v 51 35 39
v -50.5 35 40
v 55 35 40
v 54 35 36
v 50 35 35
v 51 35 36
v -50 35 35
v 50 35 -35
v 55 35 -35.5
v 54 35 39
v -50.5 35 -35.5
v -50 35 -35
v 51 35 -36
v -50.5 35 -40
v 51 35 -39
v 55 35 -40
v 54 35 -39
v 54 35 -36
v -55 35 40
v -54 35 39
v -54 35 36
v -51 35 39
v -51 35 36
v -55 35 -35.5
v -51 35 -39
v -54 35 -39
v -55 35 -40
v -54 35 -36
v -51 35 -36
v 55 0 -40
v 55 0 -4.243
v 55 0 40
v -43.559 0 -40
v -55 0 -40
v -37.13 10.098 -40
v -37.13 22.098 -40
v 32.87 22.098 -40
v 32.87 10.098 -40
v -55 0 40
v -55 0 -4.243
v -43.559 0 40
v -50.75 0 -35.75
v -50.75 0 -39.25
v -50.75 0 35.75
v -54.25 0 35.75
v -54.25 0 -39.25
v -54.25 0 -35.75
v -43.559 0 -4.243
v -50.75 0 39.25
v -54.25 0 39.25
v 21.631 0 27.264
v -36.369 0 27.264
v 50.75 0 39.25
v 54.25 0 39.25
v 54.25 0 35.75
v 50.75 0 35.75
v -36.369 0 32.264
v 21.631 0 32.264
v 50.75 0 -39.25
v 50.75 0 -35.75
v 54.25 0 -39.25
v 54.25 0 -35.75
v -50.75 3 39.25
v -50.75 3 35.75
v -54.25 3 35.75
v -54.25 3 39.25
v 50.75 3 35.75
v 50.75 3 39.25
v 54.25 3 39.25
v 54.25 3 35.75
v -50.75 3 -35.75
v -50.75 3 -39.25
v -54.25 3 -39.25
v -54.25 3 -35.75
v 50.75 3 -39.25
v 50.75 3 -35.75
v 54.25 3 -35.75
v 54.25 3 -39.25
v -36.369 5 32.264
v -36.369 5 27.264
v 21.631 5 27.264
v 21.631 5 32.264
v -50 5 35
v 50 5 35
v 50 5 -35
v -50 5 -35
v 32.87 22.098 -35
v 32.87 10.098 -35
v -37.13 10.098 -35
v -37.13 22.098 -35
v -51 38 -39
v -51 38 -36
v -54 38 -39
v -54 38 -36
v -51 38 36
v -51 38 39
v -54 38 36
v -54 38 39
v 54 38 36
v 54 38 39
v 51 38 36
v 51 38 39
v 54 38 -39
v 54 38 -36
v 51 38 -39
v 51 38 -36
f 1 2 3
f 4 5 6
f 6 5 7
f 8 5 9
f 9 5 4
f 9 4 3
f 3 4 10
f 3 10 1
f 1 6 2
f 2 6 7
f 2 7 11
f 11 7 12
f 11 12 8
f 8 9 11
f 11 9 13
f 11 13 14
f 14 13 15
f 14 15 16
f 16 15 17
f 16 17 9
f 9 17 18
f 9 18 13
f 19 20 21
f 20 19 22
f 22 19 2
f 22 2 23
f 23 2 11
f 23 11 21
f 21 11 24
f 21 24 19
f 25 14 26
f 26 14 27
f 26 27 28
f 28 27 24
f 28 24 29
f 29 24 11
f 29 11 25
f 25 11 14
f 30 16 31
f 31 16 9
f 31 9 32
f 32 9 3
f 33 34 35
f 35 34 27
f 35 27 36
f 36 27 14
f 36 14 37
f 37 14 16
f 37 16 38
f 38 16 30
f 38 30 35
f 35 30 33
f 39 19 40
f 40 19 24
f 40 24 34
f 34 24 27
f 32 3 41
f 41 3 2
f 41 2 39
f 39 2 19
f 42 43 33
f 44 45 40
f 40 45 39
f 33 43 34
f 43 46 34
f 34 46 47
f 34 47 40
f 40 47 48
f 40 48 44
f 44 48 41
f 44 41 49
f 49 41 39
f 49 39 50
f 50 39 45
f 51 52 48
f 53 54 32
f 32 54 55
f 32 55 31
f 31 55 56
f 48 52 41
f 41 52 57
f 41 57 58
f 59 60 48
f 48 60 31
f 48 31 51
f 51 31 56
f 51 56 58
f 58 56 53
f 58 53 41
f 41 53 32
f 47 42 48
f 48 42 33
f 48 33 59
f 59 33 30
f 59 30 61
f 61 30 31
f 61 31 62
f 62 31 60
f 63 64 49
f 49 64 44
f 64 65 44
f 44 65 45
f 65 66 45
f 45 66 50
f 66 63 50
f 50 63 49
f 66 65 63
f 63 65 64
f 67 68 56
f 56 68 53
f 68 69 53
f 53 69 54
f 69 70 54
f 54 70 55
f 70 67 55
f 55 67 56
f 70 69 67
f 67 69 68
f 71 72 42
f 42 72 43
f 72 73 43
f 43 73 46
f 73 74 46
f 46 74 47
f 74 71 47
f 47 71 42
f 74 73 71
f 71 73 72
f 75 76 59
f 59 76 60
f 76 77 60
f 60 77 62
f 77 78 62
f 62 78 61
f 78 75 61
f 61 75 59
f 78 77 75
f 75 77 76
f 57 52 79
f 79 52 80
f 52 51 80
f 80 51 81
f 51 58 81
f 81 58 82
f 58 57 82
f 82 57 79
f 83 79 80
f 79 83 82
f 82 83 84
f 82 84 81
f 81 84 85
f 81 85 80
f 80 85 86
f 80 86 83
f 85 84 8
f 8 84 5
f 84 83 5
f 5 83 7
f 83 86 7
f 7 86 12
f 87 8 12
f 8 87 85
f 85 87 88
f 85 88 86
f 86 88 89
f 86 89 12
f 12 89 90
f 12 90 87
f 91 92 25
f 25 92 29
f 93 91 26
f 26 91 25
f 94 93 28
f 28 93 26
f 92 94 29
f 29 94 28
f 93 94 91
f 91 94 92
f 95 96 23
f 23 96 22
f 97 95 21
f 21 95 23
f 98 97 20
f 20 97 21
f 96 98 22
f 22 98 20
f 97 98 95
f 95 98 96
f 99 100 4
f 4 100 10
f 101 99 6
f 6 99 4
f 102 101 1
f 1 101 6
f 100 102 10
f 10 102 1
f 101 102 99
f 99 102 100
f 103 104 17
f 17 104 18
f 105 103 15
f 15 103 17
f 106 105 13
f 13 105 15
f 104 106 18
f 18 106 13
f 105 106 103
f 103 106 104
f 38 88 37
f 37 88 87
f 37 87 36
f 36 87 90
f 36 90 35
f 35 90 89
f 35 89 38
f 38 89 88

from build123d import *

# Parameters (mm, degrees)
SKETCH_1_W          = 110
SKETCH_1_H          = 80
EXTRUDE_1_DEPTH     = 5
SKETCH_3_W          = 3.5
SKETCH_3_H          = 3.5
CUT_EXTRUDE_1_DEPTH = 3
SKETCH_4_W          = 58
SKETCH_4_H          = 5
CUT_EXTRUDE_2_DEPTH = 5
SKETCH_5_W          = 110
SKETCH_5_H          = 80
EXTRUDE_2_DEPTH     = 30
SKETCH_7_W          = 100
SKETCH_7_H          = 70
CUT_EXTRUDE_3_DEPTH = 30
SKETCH_8_W          = 3
SKETCH_8_H          = 3
EXTRUDE_3_DEPTH     = 3
SKETCH_9_W          = 70
SKETCH_9_H          = 12
CUT_EXTRUDE_4_DEPTH = 10


with BuildPart() as part:
    # 스케치1 → 보스-돌출1 (new body)
    with BuildSketch(Plane(origin=(0, 0, 0), x_dir=(1, 0, 0), z_dir=(0, 1, 0))):
        Rectangle(SKETCH_1_W, SKETCH_1_H)
    extrude(amount=EXTRUDE_1_DEPTH)

    # 스케치3 → 컷-돌출1 (cut)
    with BuildSketch(Plane.XZ):
        with Locations((-52.5, 37.5)):
            Rectangle(SKETCH_3_W, SKETCH_3_H)
        with Locations((52.5, 37.5)):
            Rectangle(SKETCH_3_W, SKETCH_3_H)
        with Locations((-52.5, -37.5)):
            Rectangle(SKETCH_3_W, SKETCH_3_H)
        with Locations((52.5, -37.5)):
            Rectangle(SKETCH_3_W, SKETCH_3_H)
    extrude(amount=-CUT_EXTRUDE_1_DEPTH, mode=Mode.SUBTRACT)

    # 스케치4 → 컷-돌출2 (cut)
    with BuildSketch(Plane(origin=(0, 5, 0), x_dir=(1, 0, 0), z_dir=(0, 1, 0))):
        with Locations((-7.368635656, -29.764338216)):
            Rectangle(SKETCH_4_W, SKETCH_4_H)
    extrude(amount=-CUT_EXTRUDE_2_DEPTH, mode=Mode.SUBTRACT)

    # 스케치5 → 보스-돌출2 (add)
    with BuildSketch(Plane(origin=(0, 5, 0), x_dir=(1, 0, 0), z_dir=(0, 1, 0))):
        Rectangle(SKETCH_5_W, SKETCH_5_H)
    extrude(amount=EXTRUDE_2_DEPTH)

    # 스케치7 → 컷-돌출3 (cut)
    with BuildSketch(Plane(origin=(0, 35, 0), x_dir=(1, 0, 0), z_dir=(0, 1, 0))):
        Rectangle(SKETCH_7_W, SKETCH_7_H)
    extrude(amount=-CUT_EXTRUDE_3_DEPTH, mode=Mode.SUBTRACT)

    # 스케치8 → 보스-돌출3 (add)
    with BuildSketch(Plane(origin=(0, 35, 0), x_dir=(1, 0, 0), z_dir=(0, 1, 0))):
        with Locations((-52.5, 37.5)):
            Rectangle(SKETCH_8_W, SKETCH_8_H)
        with Locations((-52.5, -37.5)):
            Rectangle(SKETCH_8_W, SKETCH_8_H)
        with Locations((52.5, -37.5)):
            Rectangle(SKETCH_8_W, SKETCH_8_H)
        with Locations((52.5, 37.5)):
            Rectangle(SKETCH_8_W, SKETCH_8_H)
    extrude(amount=EXTRUDE_3_DEPTH)

    # 스케치9 → 컷-돌출4 (cut)
    with BuildSketch(Plane(origin=(0, 0, -40), x_dir=(-1, 0, 0), z_dir=(0, 0, -1))):
        with Locations((2.129578344, 16.097594135)):
            Rectangle(SKETCH_9_W, SKETCH_9_H)
    extrude(amount=-CUT_EXTRUDE_4_DEPTH, mode=Mode.SUBTRACT)


solid = part.part
